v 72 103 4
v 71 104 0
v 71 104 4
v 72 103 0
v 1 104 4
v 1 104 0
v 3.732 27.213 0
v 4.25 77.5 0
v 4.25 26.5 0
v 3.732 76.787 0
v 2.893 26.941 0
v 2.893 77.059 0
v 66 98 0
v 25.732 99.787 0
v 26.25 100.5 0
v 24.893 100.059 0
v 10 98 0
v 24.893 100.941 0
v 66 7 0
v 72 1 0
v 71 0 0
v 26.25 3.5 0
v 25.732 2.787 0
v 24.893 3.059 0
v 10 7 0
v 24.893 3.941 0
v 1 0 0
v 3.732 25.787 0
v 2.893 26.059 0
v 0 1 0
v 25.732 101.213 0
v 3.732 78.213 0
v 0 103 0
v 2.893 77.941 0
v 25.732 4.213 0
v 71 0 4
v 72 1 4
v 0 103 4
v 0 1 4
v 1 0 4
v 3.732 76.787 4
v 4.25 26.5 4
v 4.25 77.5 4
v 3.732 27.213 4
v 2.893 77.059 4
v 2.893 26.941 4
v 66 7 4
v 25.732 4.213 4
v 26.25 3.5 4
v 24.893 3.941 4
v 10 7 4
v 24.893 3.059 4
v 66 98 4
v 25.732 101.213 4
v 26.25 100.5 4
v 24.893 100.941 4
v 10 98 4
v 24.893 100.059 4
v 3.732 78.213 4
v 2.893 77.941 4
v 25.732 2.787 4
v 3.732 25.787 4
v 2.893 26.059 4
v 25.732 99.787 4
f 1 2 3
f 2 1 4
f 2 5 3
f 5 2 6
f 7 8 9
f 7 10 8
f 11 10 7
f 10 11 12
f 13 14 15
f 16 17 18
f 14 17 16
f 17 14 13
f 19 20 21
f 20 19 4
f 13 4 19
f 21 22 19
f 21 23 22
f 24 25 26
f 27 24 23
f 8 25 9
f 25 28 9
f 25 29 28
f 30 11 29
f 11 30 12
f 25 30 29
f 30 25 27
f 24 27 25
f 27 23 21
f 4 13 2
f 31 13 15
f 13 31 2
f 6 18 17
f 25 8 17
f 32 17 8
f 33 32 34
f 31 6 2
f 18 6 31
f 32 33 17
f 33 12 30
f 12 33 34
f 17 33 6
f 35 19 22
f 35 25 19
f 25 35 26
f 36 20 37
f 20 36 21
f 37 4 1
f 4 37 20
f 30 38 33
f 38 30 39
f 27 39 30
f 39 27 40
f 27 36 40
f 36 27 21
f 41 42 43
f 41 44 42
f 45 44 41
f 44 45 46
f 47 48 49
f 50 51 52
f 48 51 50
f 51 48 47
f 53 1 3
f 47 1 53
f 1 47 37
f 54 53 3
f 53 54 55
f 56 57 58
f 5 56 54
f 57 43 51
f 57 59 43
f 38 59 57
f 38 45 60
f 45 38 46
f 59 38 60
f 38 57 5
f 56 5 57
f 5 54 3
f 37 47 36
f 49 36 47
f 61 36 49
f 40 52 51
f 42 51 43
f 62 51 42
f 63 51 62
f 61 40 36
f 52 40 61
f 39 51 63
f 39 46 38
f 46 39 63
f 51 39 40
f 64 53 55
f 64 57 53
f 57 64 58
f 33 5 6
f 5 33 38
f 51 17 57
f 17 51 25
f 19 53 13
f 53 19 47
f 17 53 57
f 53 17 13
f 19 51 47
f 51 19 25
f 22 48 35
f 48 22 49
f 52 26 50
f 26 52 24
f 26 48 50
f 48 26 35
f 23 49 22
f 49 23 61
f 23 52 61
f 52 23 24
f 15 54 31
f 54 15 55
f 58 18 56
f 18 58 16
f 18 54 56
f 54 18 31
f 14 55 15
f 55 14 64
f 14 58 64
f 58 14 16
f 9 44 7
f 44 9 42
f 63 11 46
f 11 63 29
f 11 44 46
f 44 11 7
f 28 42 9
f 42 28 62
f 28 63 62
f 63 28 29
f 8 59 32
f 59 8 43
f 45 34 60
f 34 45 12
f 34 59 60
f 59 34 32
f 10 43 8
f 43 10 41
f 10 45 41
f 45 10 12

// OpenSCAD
// M8 bezel Jan 18 2024
// split into base and top part that is glued
// supports are impossible to remove when printed in one go

width=104;
wall_thickness=1;
top_thickness=1.0; // top layer over glass
base_height=4;
layer2_height=2;
post_height=10;

module screwhole(hole=3,height=10) {

        cylinder(h=height,r1=hole/2,r2=hole/2,center=true);
}

module rounded_cube(x,y,z,r) {
    linear_extrude(height=z) translate([r,r,0]) offset(r=r) square([x-2*r,y-2*r]);
}

module hollow_cube(height,length,cutx,cuty,cutheight,cutlength,depth,r) {
    difference () {
        rounded_cube(height,length,depth,r);
        translate([cutx,cuty,0]) rounded_cube(cutheight,cutlength,depth,0);

    }
}

difference () {
    union() {
        hollow_cube (72, 104,10,7,56,91,base_height,1); // bottom
   //     translate([8,7,base_height]) hollow_cube (60,89.1+wall_thickness*2,2,5,56,82,layer2_height,1);  // layer over display PCB
   //     translate([8,7,base_height+layer2_height]) hollow_cube (60,89.1+wall_thickness*2,4,10,51,72,top_thickness,1);  // top layer over glass       
    };
    translate([25.5,3.5,0]) screwhole(1.5,post_height); // BL
    translate([25.5,width-3.5,0]) screwhole(1.5,post_height); 
    translate([3.5,26.5,0]) screwhole(1.5,post_height); 
    translate([3.5,width-26.5,0]) screwhole(1.5,post_height); 
}
